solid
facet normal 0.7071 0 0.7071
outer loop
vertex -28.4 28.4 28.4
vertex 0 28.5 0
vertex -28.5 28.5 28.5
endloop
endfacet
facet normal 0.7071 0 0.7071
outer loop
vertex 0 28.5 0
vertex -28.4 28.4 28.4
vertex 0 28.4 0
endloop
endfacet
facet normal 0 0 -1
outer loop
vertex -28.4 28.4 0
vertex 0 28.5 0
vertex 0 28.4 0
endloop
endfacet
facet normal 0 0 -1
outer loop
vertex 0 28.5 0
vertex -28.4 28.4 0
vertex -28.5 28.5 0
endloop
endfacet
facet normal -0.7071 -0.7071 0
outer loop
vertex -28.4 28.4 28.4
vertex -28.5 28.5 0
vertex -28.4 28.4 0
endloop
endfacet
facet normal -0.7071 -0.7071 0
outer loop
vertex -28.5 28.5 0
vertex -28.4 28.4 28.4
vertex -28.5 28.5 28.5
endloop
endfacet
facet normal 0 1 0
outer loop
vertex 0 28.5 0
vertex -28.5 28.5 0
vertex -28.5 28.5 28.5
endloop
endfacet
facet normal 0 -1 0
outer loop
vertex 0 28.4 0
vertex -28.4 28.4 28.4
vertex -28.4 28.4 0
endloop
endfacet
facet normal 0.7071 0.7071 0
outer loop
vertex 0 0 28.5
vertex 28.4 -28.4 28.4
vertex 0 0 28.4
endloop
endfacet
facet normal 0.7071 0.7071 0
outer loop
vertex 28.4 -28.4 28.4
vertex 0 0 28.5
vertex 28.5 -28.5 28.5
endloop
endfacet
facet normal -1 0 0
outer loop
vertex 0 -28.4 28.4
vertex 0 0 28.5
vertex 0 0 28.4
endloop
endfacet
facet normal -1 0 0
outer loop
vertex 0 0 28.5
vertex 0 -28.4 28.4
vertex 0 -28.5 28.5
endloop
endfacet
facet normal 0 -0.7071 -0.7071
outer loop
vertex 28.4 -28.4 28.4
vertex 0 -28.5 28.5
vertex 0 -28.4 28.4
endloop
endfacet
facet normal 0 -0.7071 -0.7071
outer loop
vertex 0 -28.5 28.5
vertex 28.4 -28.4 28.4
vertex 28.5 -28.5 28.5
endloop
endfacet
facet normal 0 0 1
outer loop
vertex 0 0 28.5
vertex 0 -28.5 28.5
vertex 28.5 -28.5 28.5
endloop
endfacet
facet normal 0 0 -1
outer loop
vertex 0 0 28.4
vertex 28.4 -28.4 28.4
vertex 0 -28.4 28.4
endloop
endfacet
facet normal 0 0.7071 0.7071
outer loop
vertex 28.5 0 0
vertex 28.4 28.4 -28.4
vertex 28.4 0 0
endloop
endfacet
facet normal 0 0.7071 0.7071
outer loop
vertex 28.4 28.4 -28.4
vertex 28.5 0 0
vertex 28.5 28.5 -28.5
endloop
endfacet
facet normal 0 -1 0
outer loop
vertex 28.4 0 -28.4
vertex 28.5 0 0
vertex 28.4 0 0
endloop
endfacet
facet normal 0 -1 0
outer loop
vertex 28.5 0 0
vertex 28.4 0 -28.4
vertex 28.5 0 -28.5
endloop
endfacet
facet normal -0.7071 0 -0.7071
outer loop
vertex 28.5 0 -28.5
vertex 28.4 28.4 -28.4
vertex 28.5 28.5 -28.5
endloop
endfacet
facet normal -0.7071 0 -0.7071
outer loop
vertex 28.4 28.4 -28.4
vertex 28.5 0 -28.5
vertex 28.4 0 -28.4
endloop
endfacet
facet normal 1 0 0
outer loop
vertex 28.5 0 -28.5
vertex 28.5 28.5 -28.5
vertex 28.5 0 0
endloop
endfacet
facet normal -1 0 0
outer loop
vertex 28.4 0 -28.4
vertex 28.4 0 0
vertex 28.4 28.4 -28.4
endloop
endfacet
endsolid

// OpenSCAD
// file: def.scad
total_size = 57;

round_radius = 1;
sticker_margin = 2.5;
sticker_round_radius = 0.75;
inf = total_size * 10;

theta = atan(sqrt(2));

cut1_rot = [-theta, 0, -45];
sticker_dif_cut1_dis = total_size / 2 / tan(theta) - round_radius / tan(theta / 2) + round_radius - sticker_margin;
sticker_int_cut1_dis = total_size / 2 / tan(theta) + round_radius * tan(theta / 2) - round_radius + sticker_margin;

module _cube() {
    cube([total_size - round_radius * 2, total_size - round_radius * 2, total_size - round_radius * 2], center = true);
}

module _cut1() {
    translate([-inf, -inf, 0])
        cube([inf * 2, inf * 2, inf]);
}

module _int_cut1() {
    translate([-inf, -inf, round_radius])
        cube([inf * 2, inf * 2, inf]);
}

module _sticker_int_cut1() {
    rotate([-90, 0, 0])
        translate([-inf, -inf, sticker_int_cut1_dis])
            cube([inf * 2, inf * 2, inf]);
}

module _sticker_dif_cut1() {
    rotate([-90, 0, 0])
        translate([-inf, -inf, sticker_dif_cut1_dis])
            cube([inf * 2, inf * 2, inf]);
}

module _sticker_base() {
    translate([0, 0, total_size / 2])
        cube([total_size - sticker_margin * 2, total_size - sticker_margin * 2, 0.1], center = true);
}
// main file
include <def.scad>

module selector_ccw() {
    difference() {
        cube([total_size, total_size, total_size], center = true);
        for (vec = [[0, 45, 0], [180, 0, 0], [90, 0, -45]])
            rotate(vec)
                _cut1();
        cube([total_size - 0.2, total_size - 0.2, total_size - 0.2], center = true);
    }
}


for (vec = [[0, 0, 0], [90, 0, 90], [-90, -90, 0]])
    rotate(vec)
        selector_ccw();
